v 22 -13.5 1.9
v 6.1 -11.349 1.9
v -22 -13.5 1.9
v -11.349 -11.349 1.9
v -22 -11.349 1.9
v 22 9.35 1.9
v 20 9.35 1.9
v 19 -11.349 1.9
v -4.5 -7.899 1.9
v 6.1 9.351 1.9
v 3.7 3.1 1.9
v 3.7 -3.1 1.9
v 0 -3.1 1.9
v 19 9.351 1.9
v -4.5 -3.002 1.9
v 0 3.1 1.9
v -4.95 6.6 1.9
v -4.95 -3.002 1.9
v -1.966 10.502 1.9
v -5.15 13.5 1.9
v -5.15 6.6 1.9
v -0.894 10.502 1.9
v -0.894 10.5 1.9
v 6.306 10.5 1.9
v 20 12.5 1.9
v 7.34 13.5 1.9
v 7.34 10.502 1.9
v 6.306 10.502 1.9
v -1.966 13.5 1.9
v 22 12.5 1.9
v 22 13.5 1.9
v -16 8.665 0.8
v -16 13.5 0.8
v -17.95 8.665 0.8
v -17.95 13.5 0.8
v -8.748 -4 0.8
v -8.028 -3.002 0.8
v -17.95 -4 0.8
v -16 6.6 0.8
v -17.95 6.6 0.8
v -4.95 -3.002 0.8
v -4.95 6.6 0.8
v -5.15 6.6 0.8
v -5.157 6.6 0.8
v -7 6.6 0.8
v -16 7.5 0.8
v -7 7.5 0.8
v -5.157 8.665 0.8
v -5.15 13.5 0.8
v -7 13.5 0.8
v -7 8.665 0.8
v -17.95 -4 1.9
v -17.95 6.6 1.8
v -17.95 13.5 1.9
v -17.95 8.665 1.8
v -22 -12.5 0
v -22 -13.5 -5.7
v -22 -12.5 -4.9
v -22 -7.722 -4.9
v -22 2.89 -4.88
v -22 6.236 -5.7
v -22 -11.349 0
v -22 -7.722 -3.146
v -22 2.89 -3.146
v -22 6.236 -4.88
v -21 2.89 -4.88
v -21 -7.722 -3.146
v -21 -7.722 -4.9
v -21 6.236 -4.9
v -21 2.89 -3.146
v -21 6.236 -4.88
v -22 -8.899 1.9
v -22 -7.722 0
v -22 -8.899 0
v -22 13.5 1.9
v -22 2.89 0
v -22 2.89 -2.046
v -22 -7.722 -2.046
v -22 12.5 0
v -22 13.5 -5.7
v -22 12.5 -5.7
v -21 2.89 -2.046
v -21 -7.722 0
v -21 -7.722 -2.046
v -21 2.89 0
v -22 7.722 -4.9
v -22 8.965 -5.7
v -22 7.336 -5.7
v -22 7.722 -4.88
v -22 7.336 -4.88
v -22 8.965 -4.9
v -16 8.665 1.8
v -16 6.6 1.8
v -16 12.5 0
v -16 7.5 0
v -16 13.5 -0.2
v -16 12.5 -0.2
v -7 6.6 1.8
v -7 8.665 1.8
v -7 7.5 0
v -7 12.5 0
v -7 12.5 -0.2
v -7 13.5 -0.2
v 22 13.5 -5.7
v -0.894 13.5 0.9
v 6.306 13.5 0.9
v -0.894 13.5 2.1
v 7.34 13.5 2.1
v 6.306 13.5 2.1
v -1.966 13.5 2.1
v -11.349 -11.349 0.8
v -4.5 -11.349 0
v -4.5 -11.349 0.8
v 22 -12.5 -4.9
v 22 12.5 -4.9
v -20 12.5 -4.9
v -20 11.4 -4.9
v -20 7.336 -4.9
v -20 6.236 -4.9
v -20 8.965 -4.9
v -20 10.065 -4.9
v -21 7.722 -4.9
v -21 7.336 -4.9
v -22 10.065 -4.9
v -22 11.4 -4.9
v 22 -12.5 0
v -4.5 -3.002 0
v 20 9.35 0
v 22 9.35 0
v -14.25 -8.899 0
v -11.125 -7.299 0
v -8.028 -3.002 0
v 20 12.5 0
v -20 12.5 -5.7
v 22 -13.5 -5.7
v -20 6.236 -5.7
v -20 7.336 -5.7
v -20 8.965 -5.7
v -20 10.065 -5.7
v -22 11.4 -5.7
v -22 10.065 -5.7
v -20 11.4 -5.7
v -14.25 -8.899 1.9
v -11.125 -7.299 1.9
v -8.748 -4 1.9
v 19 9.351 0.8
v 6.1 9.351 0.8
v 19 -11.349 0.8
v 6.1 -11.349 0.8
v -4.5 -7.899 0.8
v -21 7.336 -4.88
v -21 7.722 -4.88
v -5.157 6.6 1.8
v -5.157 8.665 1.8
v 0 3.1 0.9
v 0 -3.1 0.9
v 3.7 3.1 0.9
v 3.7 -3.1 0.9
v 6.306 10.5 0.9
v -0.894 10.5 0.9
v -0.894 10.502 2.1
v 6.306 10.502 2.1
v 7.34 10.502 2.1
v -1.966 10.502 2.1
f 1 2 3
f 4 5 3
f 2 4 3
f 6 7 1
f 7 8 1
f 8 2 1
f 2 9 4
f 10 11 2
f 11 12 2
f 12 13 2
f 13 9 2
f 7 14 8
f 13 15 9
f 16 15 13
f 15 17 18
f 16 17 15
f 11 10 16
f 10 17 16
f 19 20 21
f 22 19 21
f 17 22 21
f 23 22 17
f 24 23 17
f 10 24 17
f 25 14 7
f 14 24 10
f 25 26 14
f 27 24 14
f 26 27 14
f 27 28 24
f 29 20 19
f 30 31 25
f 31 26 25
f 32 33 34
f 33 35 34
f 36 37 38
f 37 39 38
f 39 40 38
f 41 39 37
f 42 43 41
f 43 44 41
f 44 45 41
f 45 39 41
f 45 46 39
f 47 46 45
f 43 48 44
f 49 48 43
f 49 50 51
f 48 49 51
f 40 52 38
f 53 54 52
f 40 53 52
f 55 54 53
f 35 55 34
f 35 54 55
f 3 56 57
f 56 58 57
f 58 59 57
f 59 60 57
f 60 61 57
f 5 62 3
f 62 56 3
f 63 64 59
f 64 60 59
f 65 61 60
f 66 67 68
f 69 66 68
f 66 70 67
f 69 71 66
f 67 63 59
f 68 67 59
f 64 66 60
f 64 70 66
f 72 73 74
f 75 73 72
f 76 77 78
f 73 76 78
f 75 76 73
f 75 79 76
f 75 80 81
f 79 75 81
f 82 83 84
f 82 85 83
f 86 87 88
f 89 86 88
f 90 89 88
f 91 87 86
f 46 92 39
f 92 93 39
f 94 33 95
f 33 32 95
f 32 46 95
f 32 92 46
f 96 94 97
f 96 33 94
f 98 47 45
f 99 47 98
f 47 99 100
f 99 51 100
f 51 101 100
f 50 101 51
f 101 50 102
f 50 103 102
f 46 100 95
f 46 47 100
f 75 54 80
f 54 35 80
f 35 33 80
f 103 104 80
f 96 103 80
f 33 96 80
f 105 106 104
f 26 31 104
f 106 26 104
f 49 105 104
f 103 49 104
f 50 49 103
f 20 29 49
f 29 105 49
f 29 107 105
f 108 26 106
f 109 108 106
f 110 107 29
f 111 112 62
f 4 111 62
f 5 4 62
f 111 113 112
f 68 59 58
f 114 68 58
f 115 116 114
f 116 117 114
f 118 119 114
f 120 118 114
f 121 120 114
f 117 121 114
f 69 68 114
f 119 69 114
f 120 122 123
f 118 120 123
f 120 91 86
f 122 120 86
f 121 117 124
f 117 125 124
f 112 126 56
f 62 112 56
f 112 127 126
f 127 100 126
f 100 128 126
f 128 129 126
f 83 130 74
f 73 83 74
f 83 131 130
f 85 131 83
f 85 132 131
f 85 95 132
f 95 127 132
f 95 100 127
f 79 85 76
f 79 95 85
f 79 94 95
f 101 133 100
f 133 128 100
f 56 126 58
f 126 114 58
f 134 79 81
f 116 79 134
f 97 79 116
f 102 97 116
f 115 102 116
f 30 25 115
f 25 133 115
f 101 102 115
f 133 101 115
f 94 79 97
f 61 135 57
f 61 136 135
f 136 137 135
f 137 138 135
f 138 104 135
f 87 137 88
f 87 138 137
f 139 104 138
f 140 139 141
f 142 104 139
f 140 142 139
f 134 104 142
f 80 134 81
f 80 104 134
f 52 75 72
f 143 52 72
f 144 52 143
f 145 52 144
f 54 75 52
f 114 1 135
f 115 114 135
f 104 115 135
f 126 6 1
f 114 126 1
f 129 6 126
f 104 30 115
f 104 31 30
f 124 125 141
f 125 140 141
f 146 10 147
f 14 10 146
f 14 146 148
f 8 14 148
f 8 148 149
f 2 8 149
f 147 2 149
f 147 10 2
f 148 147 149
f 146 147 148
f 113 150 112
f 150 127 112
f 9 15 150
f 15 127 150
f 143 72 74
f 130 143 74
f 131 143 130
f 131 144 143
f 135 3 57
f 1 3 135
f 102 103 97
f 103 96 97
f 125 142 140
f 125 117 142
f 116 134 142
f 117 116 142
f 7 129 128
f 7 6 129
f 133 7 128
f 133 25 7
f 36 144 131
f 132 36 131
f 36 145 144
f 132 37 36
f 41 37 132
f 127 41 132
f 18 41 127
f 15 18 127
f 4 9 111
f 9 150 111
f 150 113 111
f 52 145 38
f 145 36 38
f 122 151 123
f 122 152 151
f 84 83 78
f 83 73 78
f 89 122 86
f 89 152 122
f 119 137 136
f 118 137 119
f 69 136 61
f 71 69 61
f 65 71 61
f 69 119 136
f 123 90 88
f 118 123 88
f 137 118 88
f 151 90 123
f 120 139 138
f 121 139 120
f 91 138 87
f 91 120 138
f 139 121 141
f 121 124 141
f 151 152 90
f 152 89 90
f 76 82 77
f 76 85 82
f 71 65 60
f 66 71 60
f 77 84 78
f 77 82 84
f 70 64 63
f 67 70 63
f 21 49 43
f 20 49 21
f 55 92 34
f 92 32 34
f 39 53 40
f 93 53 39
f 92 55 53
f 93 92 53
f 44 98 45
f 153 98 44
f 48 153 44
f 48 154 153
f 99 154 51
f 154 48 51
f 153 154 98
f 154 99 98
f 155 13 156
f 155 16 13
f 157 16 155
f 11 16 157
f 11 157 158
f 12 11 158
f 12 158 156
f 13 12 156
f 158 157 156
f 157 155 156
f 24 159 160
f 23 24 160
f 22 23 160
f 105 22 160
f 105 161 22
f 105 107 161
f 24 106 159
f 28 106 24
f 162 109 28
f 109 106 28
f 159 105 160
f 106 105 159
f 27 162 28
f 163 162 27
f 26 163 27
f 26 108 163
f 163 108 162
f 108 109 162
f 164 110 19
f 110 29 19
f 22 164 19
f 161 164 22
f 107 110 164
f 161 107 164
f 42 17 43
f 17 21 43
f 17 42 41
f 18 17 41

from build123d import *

# Parameters (mm, degrees)
ESQUISSE1_W              = 44
ESQUISSE1_H              = 25
BOSS_EXTRU_1_DEPTH       = 1.9
ESQUISSE2_W              = 18
ESQUISSE2_H              = 21.4
ESQUISSE2_W_2            = 12.9
ESQUISSE2_H_2            = 20.7
ENL_V_MAT_EXTRU_1_DEPTH  = 1.1
ESQUISSE3_W              = 9
ESQUISSE3_H              = 12
ENL_V_MAT_EXTRU_2_DEPTH  = 10
ESQUISSE4_W              = 3.5
ESQUISSE4_H              = 6.801352385
ENL_V_MAT_EXTRU_3_DEPTH  = 1.4
ENL_V_MAT_EXTRU_4_DEPTH  = 2.4
ESQUISSE6_W              = 9
ESQUISSE6_H              = 0.8
BOSS_EXTRU_2_DEPTH       = 1
ESQUISSE7_W              = 2
ESQUISSE7_H              = 1.1
BOSS_EXTRU_3_DEPTH       = 1
BOSS_EXTRU_4_DEPTH       = 1
ESQUISSE12_W             = 26.5
ESQUISSE12_H             = 1.9
BOSS_EXTRU_6_DEPTH       = 1
ESQUISSE13_W             = 44
ESQUISSE13_H             = 1
BOSS_EXTRU_7_DEPTH       = 4.9
ESQUISSE14_W             = 44
ESQUISSE14_H             = 27
BOSS_EXTRU_8_DEPTH       = 0.8
ESQUISSE15_W             = 9
ESQUISSE15_H             = 1
ENL_V_MAT_EXTRU_5_DEPTH  = 0.2
ESQUISSE16_W             = 0.8
ESQUISSE16_H             = 1.1
ENL_V_MAT_EXTRU_7_DEPTH  = 2
ESQUISSE18_W             = 1.9
ESQUISSE18_H             = 3.15
ENL_V_MAT_EXTRU_8_DEPTH  = 2
ESQUISSE19_W             = 1
ESQUISSE19_H             = 25
BOSS_EXTRU_10_DEPTH      = 4.9
ENL_V_MAT_EXTRU_9_DEPTH  = 1
ESQUISSE21_W             = 1.9
ESQUISSE21_H             = 2.150656269
BOSS_EXTRU_11_DEPTH      = 17.5
BOSS_EXTRU_12_DEPTH      = 1.1
BOSS_EXTRU_13_DEPTH      = 1.1
ESQUISSE26_W             = 12.9
ESQUISSE26_H             = 17.5
ENL_V_MAT_EXTRU_10_DEPTH = 1.1
ESQUISSE28_W             = 4.9
ESQUISSE28_H             = 25
ENL_V_MAT_EXTRU_12_DEPTH = 10
ESQUISSE30_W             = 4.9
ESQUISSE30_H             = 25
BOSS_EXTRU_14_DEPTH      = 1
ESQUISSE31_W             = 4.9
ESQUISSE31_H             = 4.778042902
ESQUISSE31_H_2           = 4.777647835
ENL_V_MAT_EXTRU_13_DEPTH = 11
ESQUISSE32_W             = 2
ESQUISSE32_H             = 1.1
ENL_V_MAT_EXTRU_14_DEPTH = 5
ESQUISSE33_W             = 4.880014168
ESQUISSE33_H             = 9.610289291
ENL_V_MAT_EXTRU_15_DEPTH = 5
ESQUISSE34_W             = 1.1
ESQUISSE34_H             = 10.612062874
ENL_V_MAT_EXTRU_16_DEPTH = 5
ESQUISSE35_W             = 1.1
ESQUISSE35_H             = 16.502088347
BOSS_EXTRU_15_DEPTH      = 0.1
ESQUISSE36_W             = 1.95
ESQUISSE36_H             = 2.065080621
ESQUISSE36_W_2           = 1.843442291
BOSS_EXTRU_16_DEPTH      = 1
ESQUISSE40_W             = 3.7
ESQUISSE40_H             = 6.2
ENL_V_MAT_EXTRU_18_DEPTH = 1
ESQUISSE39_W             = 7.2
ESQUISSE39_H             = 3
ENL_V_MAT_EXTRU_20_DEPTH = 1
ESQUISSE41_W             = 1.072034993
ESQUISSE41_H             = 2.997764605
ESQUISSE41_W_2           = 1.033542433
BOSS_EXTRU_17_DEPTH      = 0.2
ESQUISSE42_W             = 1.1
ESQUISSE42_H             = 9.602531403
ENL_V_MAT_EXTRU_21_DEPTH = 0.2


with BuildPart() as part:
    # Esquisse1 → Boss.-Extru.1 (new body)
    with BuildSketch(Plane.XY):
        Rectangle(ESQUISSE1_W, ESQUISSE1_H)
    extrude(amount=BOSS_EXTRU_1_DEPTH)

    # Esquisse2 → Enlèv. mat.-Extru.1 (cut)
    with BuildSketch(Plane.XY.offset(1.9)):
        with Locations((-11.5, 1.801352385)):
            Rectangle(ESQUISSE2_W, ESQUISSE2_H)
        with Locations((12.55, -0.999343731)):
            Rectangle(ESQUISSE2_W_2, ESQUISSE2_H_2)
    extrude(amount=-ENL_V_MAT_EXTRU_1_DEPTH, mode=Mode.SUBTRACT)

    # Esquisse3 → Enlèv. mat.-Extru.2 (cut)
    with BuildSketch(Plane.XY.offset(0.8)):
        with Locations((-11.5, 12.5)):
            Rectangle(ESQUISSE3_W, ESQUISSE3_H)
    extrude(amount=-ENL_V_MAT_EXTRU_2_DEPTH, mode=Mode.SUBTRACT)

    # Esquisse4 → Enlèv. mat.-Extru.3 (cut)
    with BuildSketch(Plane.XY.offset(1.9)):
        with Locations((-6.25, -9.099323807)):
            Rectangle(ESQUISSE4_W, ESQUISSE4_H)
    extrude(amount=-ENL_V_MAT_EXTRU_3_DEPTH, mode=Mode.SUBTRACT)

    # Esquisse5 → Enlèv. mat.-Extru.4 (cut)
    with BuildSketch(Plane.XY.offset(1.9)):
        Polygon((-8, -5.698647615), (-14.25, -8.898647615), (-22, -8.898647615), (-22, -12.5), (-4.5, -12.5), (-4.5, -5.698647615), align=None)
    extrude(amount=-ENL_V_MAT_EXTRU_4_DEPTH, mode=Mode.SUBTRACT)

    # Esquisse6 → Boss.-Extru.2 (add)
    with BuildSketch(Plane(origin=(0, 6.5, 0), x_dir=(1, 0, 0), z_dir=(0, 1, 0))):
        with Locations((-11.5, -0.4)):
            Rectangle(ESQUISSE6_W, ESQUISSE6_H)
    extrude(amount=BOSS_EXTRU_2_DEPTH)

    # Esquisse7 → Boss.-Extru.3 (add)
    with BuildSketch(Plane(origin=(0, -8.898647615, 0), x_dir=(1, 0, 0), z_dir=(0, 1, 0))):
        with Locations((-3.5, -1.35)):
            Rectangle(ESQUISSE7_W, ESQUISSE7_H)
    extrude(amount=BOSS_EXTRU_3_DEPTH)

    # Esquisse9 → Boss.-Extru.4 (add)
    with BuildSketch(Plane(origin=(0, 12.5, 0), x_dir=(1, 0, 0), z_dir=(0, 1, 0))):
        Polygon((22, 0), (-2.5, 0), (-7, 0), (-7, -0.8), (-2.5, -0.8), (-2.5, -1.9), (22, -1.9), align=None)
        Polygon((-22, 0), (-20.5, 0), (-16, 0), (-16, -0.8), (-20.5, -0.8), (-20.5, -1.9), (-22, -1.9), align=None)
    extrude(amount=BOSS_EXTRU_4_DEPTH)

    # Esquisse12 → Boss.-Extru.6 (add)
    with BuildSketch(Plane.XZ.offset(12.5)):
        with Locations((8.75, 0.95)):
            Rectangle(ESQUISSE12_W, ESQUISSE12_H)
    extrude(amount=BOSS_EXTRU_6_DEPTH)

    # Esquisse13 → Boss.-Extru.7 (add)
    with BuildSketch(Plane(origin=(0, 0, 0), x_dir=(-1, 0, 0), z_dir=(0, 0, -1))):
        with Locations((0, 13)):
            Rectangle(ESQUISSE13_W, ESQUISSE13_H)
        with Locations((0, -13)):
            Rectangle(ESQUISSE13_W, ESQUISSE13_H)
    extrude(amount=BOSS_EXTRU_7_DEPTH)

    # Esquisse14 → Boss.-Extru.8 (add)
    with BuildSketch(Plane(origin=(0, 0, -4.9), x_dir=(-1, 0, 0), z_dir=(0, 0, -1))):
        Rectangle(ESQUISSE14_W, ESQUISSE14_H)
    extrude(amount=BOSS_EXTRU_8_DEPTH)

    # Esquisse15 → Enlèv. mat.-Extru.5 (cut)
    with BuildSketch(Plane.XY):
        with Locations((-11.5, 13)):
            Rectangle(ESQUISSE15_W, ESQUISSE15_H)
    extrude(amount=-ENL_V_MAT_EXTRU_5_DEPTH, mode=Mode.SUBTRACT)

    # Esquisse16 → Enlèv. mat.-Extru.7 (cut)
    with BuildSketch(Plane.ZY.offset(22)):
        with Locations((-5.3, 11.95)):
            Rectangle(ESQUISSE16_W, ESQUISSE16_H)
    extrude(amount=-ENL_V_MAT_EXTRU_7_DEPTH, mode=Mode.SUBTRACT)

    # Esquisse18 → Enlèv. mat.-Extru.8 (cut)
    with BuildSketch(Plane(origin=(22, 0, 0), x_dir=(0, 0, -1), z_dir=(1, 0, 0))):
        with Locations((-0.95, 10.925)):
            Rectangle(ESQUISSE18_W, ESQUISSE18_H)
    extrude(amount=-ENL_V_MAT_EXTRU_8_DEPTH, mode=Mode.SUBTRACT)

    # Esquisse19 → Boss.-Extru.10 (add)
    with BuildSketch(Plane.XY.offset(-4.9)):
        with Locations((-19.5, 0)):
            Rectangle(ESQUISSE19_W, ESQUISSE19_H)
    extrude(amount=BOSS_EXTRU_10_DEPTH)

    # Esquisse20 → Enlèv. mat.-Extru.9 (cut)
    with BuildSketch(Plane.XY.offset(0.8)):
        Polygon((-4.5, -5.776745759), (-4.5, -3.002088347), (-8.02831202, -3.002088347), (-11.125, -7.298647615), align=None)
    extrude(amount=-ENL_V_MAT_EXTRU_9_DEPTH, mode=Mode.SUBTRACT)

    # Esquisse21 → Boss.-Extru.11 (add)
    with BuildSketch(Plane.ZY.offset(4.5)):
        with Locations((0.95, -12.424671866)):
            Rectangle(ESQUISSE21_W, ESQUISSE21_H)
    extrude(amount=BOSS_EXTRU_11_DEPTH)

    # Esquisse23 → Boss.-Extru.12 (add)
    with BuildSketch(Plane.XY.offset(0.8)):
        Polygon((-4.5, -7.898647615), (-11.348803677, -11.349343731), (-4.5, -11.349343731), align=None)
    extrude(amount=BOSS_EXTRU_12_DEPTH)

    # Esquisse25 → Boss.-Extru.13 (add)
    with BuildSketch(Plane.XY.offset(0.8)):
        Polygon((-16, 13.5), (-20.5, 13.5), (-20.5, -8.898647615), (-14.25, -8.898647615), (-11.125, -7.298647615), (-8.02831202, -3.002088347), (-4.5, -3.002088347), (-4.5, -7.898647615), (-2.5, -7.898647615), (-2.5, 13.5), (-7, 13.5), (-7, 7.5), (-16, 7.5), align=None)
    extrude(amount=BOSS_EXTRU_13_DEPTH)

    # Esquisse26 → Enlèv. mat.-Extru.10 (cut)
    with BuildSketch(Plane.XY.offset(1.9)):
        with Locations((-11.5, 4.75)):
            Rectangle(ESQUISSE26_W, ESQUISSE26_H)
    extrude(amount=-ENL_V_MAT_EXTRU_10_DEPTH, mode=Mode.SUBTRACT)

    # Esquisse28 → Enlèv. mat.-Extru.12 (cut)
    with BuildSketch(Plane.ZY.offset(20)):
        with Locations((-2.45, 0)):
            Rectangle(ESQUISSE28_W, ESQUISSE28_H)
    extrude(amount=-ENL_V_MAT_EXTRU_12_DEPTH, mode=Mode.SUBTRACT)

    # Esquisse30 → Boss.-Extru.14 (add)
    with BuildSketch(Plane.ZY.offset(22)):
        with Locations((-2.45, 0)):
            Rectangle(ESQUISSE30_W, ESQUISSE30_H)
    extrude(amount=-BOSS_EXTRU_14_DEPTH)

    # Esquisse31 → Enlèv. mat.-Extru.13 (cut)
    with BuildSketch(Plane(origin=(-21, 0, 0), x_dir=(0, 0, -1), z_dir=(1, 0, 0))):
        with Locations((2.45, 10.110978549)):
            Rectangle(ESQUISSE31_W, ESQUISSE31_H)
        with Locations((2.45, -10.111176083)):
            Rectangle(ESQUISSE31_W, ESQUISSE31_H_2)
    extrude(amount=-ENL_V_MAT_EXTRU_13_DEPTH, mode=Mode.SUBTRACT)

    # Esquisse32 → Enlèv. mat.-Extru.14 (cut)
    with BuildSketch(Plane(origin=(0, 0, -5.7), x_dir=(-1, 0, 0), z_dir=(0, 0, -1))):
        with Locations((21, 9.515350227)):
            Rectangle(ESQUISSE32_W, ESQUISSE32_H)
        with Locations((21, 6.785575873)):
            Rectangle(ESQUISSE32_W, ESQUISSE32_H)
    extrude(amount=-ENL_V_MAT_EXTRU_14_DEPTH, mode=Mode.SUBTRACT)

    # Esquisse33 → Enlèv. mat.-Extru.15 (cut)
    with BuildSketch(Plane.ZY.offset(22)):
        with Locations((-2.440007084, 7.694855354)):
            Rectangle(ESQUISSE33_W, ESQUISSE33_H)
    extrude(amount=-ENL_V_MAT_EXTRU_15_DEPTH, mode=Mode.SUBTRACT)

    # Esquisse34 → Enlèv. mat.-Extru.16 (cut)
    with BuildSketch(Plane.ZY.offset(22)):
        with Locations((-2.596187743, -2.416320728)):
            Rectangle(ESQUISSE34_W, ESQUISSE34_H)
    extrude(amount=-ENL_V_MAT_EXTRU_16_DEPTH, mode=Mode.SUBTRACT)

    # Esquisse35 → Boss.-Extru.15 (add)
    with BuildSketch(Plane.ZY.offset(5.05)):
        with Locations((1.35, 5.248955826)):
            Rectangle(ESQUISSE35_W, ESQUISSE35_H)
    extrude(amount=BOSS_EXTRU_15_DEPTH)

    # Esquisse36 → Boss.-Extru.16 (add)
    with BuildSketch(Plane.XY.offset(0.8)):
        with Locations((-16.975, 7.632540311)):
            Rectangle(ESQUISSE36_W, ESQUISSE36_H)
        with Locations((-6.078278855, 7.632540311)):
            Rectangle(ESQUISSE36_W_2, ESQUISSE36_H)
    extrude(amount=BOSS_EXTRU_16_DEPTH)

    # Esquisse40 → Enlèv. mat.-Extru.18 (cut)
    with BuildSketch(Plane.XY.offset(1.9)):
        with Locations((1.85, 0)):
            Rectangle(ESQUISSE40_W, ESQUISSE40_H)
    extrude(amount=-ENL_V_MAT_EXTRU_18_DEPTH, mode=Mode.SUBTRACT)

    # Esquisse39 → Enlèv. mat.-Extru.20 (cut)
    with BuildSketch(Plane.XY.offset(1.9)):
        with Locations((2.705958025, 12)):
            Rectangle(ESQUISSE39_W, ESQUISSE39_H)
    extrude(amount=-ENL_V_MAT_EXTRU_20_DEPTH, mode=Mode.SUBTRACT)

    # Esquisse41 → Boss.-Extru.17 (add)
    with BuildSketch(Plane.XY.offset(1.9)):
        with Locations((-1.430059472, 12.001117697)):
            Rectangle(ESQUISSE41_W, ESQUISSE41_H)
        with Locations((6.822729242, 12.001117697)):
            Rectangle(ESQUISSE41_W_2, ESQUISSE41_H)
    extrude(amount=BOSS_EXTRU_17_DEPTH)

    # Esquisse42 → Enlèv. mat.-Extru.21 (cut)
    with BuildSketch(Plane.ZY.offset(5.15)):
        with Locations((1.35, 1.799177355)):
            Rectangle(ESQUISSE42_W, ESQUISSE42_H)
    extrude(amount=-ENL_V_MAT_EXTRU_21_DEPTH, mode=Mode.SUBTRACT)


solid = part.part
